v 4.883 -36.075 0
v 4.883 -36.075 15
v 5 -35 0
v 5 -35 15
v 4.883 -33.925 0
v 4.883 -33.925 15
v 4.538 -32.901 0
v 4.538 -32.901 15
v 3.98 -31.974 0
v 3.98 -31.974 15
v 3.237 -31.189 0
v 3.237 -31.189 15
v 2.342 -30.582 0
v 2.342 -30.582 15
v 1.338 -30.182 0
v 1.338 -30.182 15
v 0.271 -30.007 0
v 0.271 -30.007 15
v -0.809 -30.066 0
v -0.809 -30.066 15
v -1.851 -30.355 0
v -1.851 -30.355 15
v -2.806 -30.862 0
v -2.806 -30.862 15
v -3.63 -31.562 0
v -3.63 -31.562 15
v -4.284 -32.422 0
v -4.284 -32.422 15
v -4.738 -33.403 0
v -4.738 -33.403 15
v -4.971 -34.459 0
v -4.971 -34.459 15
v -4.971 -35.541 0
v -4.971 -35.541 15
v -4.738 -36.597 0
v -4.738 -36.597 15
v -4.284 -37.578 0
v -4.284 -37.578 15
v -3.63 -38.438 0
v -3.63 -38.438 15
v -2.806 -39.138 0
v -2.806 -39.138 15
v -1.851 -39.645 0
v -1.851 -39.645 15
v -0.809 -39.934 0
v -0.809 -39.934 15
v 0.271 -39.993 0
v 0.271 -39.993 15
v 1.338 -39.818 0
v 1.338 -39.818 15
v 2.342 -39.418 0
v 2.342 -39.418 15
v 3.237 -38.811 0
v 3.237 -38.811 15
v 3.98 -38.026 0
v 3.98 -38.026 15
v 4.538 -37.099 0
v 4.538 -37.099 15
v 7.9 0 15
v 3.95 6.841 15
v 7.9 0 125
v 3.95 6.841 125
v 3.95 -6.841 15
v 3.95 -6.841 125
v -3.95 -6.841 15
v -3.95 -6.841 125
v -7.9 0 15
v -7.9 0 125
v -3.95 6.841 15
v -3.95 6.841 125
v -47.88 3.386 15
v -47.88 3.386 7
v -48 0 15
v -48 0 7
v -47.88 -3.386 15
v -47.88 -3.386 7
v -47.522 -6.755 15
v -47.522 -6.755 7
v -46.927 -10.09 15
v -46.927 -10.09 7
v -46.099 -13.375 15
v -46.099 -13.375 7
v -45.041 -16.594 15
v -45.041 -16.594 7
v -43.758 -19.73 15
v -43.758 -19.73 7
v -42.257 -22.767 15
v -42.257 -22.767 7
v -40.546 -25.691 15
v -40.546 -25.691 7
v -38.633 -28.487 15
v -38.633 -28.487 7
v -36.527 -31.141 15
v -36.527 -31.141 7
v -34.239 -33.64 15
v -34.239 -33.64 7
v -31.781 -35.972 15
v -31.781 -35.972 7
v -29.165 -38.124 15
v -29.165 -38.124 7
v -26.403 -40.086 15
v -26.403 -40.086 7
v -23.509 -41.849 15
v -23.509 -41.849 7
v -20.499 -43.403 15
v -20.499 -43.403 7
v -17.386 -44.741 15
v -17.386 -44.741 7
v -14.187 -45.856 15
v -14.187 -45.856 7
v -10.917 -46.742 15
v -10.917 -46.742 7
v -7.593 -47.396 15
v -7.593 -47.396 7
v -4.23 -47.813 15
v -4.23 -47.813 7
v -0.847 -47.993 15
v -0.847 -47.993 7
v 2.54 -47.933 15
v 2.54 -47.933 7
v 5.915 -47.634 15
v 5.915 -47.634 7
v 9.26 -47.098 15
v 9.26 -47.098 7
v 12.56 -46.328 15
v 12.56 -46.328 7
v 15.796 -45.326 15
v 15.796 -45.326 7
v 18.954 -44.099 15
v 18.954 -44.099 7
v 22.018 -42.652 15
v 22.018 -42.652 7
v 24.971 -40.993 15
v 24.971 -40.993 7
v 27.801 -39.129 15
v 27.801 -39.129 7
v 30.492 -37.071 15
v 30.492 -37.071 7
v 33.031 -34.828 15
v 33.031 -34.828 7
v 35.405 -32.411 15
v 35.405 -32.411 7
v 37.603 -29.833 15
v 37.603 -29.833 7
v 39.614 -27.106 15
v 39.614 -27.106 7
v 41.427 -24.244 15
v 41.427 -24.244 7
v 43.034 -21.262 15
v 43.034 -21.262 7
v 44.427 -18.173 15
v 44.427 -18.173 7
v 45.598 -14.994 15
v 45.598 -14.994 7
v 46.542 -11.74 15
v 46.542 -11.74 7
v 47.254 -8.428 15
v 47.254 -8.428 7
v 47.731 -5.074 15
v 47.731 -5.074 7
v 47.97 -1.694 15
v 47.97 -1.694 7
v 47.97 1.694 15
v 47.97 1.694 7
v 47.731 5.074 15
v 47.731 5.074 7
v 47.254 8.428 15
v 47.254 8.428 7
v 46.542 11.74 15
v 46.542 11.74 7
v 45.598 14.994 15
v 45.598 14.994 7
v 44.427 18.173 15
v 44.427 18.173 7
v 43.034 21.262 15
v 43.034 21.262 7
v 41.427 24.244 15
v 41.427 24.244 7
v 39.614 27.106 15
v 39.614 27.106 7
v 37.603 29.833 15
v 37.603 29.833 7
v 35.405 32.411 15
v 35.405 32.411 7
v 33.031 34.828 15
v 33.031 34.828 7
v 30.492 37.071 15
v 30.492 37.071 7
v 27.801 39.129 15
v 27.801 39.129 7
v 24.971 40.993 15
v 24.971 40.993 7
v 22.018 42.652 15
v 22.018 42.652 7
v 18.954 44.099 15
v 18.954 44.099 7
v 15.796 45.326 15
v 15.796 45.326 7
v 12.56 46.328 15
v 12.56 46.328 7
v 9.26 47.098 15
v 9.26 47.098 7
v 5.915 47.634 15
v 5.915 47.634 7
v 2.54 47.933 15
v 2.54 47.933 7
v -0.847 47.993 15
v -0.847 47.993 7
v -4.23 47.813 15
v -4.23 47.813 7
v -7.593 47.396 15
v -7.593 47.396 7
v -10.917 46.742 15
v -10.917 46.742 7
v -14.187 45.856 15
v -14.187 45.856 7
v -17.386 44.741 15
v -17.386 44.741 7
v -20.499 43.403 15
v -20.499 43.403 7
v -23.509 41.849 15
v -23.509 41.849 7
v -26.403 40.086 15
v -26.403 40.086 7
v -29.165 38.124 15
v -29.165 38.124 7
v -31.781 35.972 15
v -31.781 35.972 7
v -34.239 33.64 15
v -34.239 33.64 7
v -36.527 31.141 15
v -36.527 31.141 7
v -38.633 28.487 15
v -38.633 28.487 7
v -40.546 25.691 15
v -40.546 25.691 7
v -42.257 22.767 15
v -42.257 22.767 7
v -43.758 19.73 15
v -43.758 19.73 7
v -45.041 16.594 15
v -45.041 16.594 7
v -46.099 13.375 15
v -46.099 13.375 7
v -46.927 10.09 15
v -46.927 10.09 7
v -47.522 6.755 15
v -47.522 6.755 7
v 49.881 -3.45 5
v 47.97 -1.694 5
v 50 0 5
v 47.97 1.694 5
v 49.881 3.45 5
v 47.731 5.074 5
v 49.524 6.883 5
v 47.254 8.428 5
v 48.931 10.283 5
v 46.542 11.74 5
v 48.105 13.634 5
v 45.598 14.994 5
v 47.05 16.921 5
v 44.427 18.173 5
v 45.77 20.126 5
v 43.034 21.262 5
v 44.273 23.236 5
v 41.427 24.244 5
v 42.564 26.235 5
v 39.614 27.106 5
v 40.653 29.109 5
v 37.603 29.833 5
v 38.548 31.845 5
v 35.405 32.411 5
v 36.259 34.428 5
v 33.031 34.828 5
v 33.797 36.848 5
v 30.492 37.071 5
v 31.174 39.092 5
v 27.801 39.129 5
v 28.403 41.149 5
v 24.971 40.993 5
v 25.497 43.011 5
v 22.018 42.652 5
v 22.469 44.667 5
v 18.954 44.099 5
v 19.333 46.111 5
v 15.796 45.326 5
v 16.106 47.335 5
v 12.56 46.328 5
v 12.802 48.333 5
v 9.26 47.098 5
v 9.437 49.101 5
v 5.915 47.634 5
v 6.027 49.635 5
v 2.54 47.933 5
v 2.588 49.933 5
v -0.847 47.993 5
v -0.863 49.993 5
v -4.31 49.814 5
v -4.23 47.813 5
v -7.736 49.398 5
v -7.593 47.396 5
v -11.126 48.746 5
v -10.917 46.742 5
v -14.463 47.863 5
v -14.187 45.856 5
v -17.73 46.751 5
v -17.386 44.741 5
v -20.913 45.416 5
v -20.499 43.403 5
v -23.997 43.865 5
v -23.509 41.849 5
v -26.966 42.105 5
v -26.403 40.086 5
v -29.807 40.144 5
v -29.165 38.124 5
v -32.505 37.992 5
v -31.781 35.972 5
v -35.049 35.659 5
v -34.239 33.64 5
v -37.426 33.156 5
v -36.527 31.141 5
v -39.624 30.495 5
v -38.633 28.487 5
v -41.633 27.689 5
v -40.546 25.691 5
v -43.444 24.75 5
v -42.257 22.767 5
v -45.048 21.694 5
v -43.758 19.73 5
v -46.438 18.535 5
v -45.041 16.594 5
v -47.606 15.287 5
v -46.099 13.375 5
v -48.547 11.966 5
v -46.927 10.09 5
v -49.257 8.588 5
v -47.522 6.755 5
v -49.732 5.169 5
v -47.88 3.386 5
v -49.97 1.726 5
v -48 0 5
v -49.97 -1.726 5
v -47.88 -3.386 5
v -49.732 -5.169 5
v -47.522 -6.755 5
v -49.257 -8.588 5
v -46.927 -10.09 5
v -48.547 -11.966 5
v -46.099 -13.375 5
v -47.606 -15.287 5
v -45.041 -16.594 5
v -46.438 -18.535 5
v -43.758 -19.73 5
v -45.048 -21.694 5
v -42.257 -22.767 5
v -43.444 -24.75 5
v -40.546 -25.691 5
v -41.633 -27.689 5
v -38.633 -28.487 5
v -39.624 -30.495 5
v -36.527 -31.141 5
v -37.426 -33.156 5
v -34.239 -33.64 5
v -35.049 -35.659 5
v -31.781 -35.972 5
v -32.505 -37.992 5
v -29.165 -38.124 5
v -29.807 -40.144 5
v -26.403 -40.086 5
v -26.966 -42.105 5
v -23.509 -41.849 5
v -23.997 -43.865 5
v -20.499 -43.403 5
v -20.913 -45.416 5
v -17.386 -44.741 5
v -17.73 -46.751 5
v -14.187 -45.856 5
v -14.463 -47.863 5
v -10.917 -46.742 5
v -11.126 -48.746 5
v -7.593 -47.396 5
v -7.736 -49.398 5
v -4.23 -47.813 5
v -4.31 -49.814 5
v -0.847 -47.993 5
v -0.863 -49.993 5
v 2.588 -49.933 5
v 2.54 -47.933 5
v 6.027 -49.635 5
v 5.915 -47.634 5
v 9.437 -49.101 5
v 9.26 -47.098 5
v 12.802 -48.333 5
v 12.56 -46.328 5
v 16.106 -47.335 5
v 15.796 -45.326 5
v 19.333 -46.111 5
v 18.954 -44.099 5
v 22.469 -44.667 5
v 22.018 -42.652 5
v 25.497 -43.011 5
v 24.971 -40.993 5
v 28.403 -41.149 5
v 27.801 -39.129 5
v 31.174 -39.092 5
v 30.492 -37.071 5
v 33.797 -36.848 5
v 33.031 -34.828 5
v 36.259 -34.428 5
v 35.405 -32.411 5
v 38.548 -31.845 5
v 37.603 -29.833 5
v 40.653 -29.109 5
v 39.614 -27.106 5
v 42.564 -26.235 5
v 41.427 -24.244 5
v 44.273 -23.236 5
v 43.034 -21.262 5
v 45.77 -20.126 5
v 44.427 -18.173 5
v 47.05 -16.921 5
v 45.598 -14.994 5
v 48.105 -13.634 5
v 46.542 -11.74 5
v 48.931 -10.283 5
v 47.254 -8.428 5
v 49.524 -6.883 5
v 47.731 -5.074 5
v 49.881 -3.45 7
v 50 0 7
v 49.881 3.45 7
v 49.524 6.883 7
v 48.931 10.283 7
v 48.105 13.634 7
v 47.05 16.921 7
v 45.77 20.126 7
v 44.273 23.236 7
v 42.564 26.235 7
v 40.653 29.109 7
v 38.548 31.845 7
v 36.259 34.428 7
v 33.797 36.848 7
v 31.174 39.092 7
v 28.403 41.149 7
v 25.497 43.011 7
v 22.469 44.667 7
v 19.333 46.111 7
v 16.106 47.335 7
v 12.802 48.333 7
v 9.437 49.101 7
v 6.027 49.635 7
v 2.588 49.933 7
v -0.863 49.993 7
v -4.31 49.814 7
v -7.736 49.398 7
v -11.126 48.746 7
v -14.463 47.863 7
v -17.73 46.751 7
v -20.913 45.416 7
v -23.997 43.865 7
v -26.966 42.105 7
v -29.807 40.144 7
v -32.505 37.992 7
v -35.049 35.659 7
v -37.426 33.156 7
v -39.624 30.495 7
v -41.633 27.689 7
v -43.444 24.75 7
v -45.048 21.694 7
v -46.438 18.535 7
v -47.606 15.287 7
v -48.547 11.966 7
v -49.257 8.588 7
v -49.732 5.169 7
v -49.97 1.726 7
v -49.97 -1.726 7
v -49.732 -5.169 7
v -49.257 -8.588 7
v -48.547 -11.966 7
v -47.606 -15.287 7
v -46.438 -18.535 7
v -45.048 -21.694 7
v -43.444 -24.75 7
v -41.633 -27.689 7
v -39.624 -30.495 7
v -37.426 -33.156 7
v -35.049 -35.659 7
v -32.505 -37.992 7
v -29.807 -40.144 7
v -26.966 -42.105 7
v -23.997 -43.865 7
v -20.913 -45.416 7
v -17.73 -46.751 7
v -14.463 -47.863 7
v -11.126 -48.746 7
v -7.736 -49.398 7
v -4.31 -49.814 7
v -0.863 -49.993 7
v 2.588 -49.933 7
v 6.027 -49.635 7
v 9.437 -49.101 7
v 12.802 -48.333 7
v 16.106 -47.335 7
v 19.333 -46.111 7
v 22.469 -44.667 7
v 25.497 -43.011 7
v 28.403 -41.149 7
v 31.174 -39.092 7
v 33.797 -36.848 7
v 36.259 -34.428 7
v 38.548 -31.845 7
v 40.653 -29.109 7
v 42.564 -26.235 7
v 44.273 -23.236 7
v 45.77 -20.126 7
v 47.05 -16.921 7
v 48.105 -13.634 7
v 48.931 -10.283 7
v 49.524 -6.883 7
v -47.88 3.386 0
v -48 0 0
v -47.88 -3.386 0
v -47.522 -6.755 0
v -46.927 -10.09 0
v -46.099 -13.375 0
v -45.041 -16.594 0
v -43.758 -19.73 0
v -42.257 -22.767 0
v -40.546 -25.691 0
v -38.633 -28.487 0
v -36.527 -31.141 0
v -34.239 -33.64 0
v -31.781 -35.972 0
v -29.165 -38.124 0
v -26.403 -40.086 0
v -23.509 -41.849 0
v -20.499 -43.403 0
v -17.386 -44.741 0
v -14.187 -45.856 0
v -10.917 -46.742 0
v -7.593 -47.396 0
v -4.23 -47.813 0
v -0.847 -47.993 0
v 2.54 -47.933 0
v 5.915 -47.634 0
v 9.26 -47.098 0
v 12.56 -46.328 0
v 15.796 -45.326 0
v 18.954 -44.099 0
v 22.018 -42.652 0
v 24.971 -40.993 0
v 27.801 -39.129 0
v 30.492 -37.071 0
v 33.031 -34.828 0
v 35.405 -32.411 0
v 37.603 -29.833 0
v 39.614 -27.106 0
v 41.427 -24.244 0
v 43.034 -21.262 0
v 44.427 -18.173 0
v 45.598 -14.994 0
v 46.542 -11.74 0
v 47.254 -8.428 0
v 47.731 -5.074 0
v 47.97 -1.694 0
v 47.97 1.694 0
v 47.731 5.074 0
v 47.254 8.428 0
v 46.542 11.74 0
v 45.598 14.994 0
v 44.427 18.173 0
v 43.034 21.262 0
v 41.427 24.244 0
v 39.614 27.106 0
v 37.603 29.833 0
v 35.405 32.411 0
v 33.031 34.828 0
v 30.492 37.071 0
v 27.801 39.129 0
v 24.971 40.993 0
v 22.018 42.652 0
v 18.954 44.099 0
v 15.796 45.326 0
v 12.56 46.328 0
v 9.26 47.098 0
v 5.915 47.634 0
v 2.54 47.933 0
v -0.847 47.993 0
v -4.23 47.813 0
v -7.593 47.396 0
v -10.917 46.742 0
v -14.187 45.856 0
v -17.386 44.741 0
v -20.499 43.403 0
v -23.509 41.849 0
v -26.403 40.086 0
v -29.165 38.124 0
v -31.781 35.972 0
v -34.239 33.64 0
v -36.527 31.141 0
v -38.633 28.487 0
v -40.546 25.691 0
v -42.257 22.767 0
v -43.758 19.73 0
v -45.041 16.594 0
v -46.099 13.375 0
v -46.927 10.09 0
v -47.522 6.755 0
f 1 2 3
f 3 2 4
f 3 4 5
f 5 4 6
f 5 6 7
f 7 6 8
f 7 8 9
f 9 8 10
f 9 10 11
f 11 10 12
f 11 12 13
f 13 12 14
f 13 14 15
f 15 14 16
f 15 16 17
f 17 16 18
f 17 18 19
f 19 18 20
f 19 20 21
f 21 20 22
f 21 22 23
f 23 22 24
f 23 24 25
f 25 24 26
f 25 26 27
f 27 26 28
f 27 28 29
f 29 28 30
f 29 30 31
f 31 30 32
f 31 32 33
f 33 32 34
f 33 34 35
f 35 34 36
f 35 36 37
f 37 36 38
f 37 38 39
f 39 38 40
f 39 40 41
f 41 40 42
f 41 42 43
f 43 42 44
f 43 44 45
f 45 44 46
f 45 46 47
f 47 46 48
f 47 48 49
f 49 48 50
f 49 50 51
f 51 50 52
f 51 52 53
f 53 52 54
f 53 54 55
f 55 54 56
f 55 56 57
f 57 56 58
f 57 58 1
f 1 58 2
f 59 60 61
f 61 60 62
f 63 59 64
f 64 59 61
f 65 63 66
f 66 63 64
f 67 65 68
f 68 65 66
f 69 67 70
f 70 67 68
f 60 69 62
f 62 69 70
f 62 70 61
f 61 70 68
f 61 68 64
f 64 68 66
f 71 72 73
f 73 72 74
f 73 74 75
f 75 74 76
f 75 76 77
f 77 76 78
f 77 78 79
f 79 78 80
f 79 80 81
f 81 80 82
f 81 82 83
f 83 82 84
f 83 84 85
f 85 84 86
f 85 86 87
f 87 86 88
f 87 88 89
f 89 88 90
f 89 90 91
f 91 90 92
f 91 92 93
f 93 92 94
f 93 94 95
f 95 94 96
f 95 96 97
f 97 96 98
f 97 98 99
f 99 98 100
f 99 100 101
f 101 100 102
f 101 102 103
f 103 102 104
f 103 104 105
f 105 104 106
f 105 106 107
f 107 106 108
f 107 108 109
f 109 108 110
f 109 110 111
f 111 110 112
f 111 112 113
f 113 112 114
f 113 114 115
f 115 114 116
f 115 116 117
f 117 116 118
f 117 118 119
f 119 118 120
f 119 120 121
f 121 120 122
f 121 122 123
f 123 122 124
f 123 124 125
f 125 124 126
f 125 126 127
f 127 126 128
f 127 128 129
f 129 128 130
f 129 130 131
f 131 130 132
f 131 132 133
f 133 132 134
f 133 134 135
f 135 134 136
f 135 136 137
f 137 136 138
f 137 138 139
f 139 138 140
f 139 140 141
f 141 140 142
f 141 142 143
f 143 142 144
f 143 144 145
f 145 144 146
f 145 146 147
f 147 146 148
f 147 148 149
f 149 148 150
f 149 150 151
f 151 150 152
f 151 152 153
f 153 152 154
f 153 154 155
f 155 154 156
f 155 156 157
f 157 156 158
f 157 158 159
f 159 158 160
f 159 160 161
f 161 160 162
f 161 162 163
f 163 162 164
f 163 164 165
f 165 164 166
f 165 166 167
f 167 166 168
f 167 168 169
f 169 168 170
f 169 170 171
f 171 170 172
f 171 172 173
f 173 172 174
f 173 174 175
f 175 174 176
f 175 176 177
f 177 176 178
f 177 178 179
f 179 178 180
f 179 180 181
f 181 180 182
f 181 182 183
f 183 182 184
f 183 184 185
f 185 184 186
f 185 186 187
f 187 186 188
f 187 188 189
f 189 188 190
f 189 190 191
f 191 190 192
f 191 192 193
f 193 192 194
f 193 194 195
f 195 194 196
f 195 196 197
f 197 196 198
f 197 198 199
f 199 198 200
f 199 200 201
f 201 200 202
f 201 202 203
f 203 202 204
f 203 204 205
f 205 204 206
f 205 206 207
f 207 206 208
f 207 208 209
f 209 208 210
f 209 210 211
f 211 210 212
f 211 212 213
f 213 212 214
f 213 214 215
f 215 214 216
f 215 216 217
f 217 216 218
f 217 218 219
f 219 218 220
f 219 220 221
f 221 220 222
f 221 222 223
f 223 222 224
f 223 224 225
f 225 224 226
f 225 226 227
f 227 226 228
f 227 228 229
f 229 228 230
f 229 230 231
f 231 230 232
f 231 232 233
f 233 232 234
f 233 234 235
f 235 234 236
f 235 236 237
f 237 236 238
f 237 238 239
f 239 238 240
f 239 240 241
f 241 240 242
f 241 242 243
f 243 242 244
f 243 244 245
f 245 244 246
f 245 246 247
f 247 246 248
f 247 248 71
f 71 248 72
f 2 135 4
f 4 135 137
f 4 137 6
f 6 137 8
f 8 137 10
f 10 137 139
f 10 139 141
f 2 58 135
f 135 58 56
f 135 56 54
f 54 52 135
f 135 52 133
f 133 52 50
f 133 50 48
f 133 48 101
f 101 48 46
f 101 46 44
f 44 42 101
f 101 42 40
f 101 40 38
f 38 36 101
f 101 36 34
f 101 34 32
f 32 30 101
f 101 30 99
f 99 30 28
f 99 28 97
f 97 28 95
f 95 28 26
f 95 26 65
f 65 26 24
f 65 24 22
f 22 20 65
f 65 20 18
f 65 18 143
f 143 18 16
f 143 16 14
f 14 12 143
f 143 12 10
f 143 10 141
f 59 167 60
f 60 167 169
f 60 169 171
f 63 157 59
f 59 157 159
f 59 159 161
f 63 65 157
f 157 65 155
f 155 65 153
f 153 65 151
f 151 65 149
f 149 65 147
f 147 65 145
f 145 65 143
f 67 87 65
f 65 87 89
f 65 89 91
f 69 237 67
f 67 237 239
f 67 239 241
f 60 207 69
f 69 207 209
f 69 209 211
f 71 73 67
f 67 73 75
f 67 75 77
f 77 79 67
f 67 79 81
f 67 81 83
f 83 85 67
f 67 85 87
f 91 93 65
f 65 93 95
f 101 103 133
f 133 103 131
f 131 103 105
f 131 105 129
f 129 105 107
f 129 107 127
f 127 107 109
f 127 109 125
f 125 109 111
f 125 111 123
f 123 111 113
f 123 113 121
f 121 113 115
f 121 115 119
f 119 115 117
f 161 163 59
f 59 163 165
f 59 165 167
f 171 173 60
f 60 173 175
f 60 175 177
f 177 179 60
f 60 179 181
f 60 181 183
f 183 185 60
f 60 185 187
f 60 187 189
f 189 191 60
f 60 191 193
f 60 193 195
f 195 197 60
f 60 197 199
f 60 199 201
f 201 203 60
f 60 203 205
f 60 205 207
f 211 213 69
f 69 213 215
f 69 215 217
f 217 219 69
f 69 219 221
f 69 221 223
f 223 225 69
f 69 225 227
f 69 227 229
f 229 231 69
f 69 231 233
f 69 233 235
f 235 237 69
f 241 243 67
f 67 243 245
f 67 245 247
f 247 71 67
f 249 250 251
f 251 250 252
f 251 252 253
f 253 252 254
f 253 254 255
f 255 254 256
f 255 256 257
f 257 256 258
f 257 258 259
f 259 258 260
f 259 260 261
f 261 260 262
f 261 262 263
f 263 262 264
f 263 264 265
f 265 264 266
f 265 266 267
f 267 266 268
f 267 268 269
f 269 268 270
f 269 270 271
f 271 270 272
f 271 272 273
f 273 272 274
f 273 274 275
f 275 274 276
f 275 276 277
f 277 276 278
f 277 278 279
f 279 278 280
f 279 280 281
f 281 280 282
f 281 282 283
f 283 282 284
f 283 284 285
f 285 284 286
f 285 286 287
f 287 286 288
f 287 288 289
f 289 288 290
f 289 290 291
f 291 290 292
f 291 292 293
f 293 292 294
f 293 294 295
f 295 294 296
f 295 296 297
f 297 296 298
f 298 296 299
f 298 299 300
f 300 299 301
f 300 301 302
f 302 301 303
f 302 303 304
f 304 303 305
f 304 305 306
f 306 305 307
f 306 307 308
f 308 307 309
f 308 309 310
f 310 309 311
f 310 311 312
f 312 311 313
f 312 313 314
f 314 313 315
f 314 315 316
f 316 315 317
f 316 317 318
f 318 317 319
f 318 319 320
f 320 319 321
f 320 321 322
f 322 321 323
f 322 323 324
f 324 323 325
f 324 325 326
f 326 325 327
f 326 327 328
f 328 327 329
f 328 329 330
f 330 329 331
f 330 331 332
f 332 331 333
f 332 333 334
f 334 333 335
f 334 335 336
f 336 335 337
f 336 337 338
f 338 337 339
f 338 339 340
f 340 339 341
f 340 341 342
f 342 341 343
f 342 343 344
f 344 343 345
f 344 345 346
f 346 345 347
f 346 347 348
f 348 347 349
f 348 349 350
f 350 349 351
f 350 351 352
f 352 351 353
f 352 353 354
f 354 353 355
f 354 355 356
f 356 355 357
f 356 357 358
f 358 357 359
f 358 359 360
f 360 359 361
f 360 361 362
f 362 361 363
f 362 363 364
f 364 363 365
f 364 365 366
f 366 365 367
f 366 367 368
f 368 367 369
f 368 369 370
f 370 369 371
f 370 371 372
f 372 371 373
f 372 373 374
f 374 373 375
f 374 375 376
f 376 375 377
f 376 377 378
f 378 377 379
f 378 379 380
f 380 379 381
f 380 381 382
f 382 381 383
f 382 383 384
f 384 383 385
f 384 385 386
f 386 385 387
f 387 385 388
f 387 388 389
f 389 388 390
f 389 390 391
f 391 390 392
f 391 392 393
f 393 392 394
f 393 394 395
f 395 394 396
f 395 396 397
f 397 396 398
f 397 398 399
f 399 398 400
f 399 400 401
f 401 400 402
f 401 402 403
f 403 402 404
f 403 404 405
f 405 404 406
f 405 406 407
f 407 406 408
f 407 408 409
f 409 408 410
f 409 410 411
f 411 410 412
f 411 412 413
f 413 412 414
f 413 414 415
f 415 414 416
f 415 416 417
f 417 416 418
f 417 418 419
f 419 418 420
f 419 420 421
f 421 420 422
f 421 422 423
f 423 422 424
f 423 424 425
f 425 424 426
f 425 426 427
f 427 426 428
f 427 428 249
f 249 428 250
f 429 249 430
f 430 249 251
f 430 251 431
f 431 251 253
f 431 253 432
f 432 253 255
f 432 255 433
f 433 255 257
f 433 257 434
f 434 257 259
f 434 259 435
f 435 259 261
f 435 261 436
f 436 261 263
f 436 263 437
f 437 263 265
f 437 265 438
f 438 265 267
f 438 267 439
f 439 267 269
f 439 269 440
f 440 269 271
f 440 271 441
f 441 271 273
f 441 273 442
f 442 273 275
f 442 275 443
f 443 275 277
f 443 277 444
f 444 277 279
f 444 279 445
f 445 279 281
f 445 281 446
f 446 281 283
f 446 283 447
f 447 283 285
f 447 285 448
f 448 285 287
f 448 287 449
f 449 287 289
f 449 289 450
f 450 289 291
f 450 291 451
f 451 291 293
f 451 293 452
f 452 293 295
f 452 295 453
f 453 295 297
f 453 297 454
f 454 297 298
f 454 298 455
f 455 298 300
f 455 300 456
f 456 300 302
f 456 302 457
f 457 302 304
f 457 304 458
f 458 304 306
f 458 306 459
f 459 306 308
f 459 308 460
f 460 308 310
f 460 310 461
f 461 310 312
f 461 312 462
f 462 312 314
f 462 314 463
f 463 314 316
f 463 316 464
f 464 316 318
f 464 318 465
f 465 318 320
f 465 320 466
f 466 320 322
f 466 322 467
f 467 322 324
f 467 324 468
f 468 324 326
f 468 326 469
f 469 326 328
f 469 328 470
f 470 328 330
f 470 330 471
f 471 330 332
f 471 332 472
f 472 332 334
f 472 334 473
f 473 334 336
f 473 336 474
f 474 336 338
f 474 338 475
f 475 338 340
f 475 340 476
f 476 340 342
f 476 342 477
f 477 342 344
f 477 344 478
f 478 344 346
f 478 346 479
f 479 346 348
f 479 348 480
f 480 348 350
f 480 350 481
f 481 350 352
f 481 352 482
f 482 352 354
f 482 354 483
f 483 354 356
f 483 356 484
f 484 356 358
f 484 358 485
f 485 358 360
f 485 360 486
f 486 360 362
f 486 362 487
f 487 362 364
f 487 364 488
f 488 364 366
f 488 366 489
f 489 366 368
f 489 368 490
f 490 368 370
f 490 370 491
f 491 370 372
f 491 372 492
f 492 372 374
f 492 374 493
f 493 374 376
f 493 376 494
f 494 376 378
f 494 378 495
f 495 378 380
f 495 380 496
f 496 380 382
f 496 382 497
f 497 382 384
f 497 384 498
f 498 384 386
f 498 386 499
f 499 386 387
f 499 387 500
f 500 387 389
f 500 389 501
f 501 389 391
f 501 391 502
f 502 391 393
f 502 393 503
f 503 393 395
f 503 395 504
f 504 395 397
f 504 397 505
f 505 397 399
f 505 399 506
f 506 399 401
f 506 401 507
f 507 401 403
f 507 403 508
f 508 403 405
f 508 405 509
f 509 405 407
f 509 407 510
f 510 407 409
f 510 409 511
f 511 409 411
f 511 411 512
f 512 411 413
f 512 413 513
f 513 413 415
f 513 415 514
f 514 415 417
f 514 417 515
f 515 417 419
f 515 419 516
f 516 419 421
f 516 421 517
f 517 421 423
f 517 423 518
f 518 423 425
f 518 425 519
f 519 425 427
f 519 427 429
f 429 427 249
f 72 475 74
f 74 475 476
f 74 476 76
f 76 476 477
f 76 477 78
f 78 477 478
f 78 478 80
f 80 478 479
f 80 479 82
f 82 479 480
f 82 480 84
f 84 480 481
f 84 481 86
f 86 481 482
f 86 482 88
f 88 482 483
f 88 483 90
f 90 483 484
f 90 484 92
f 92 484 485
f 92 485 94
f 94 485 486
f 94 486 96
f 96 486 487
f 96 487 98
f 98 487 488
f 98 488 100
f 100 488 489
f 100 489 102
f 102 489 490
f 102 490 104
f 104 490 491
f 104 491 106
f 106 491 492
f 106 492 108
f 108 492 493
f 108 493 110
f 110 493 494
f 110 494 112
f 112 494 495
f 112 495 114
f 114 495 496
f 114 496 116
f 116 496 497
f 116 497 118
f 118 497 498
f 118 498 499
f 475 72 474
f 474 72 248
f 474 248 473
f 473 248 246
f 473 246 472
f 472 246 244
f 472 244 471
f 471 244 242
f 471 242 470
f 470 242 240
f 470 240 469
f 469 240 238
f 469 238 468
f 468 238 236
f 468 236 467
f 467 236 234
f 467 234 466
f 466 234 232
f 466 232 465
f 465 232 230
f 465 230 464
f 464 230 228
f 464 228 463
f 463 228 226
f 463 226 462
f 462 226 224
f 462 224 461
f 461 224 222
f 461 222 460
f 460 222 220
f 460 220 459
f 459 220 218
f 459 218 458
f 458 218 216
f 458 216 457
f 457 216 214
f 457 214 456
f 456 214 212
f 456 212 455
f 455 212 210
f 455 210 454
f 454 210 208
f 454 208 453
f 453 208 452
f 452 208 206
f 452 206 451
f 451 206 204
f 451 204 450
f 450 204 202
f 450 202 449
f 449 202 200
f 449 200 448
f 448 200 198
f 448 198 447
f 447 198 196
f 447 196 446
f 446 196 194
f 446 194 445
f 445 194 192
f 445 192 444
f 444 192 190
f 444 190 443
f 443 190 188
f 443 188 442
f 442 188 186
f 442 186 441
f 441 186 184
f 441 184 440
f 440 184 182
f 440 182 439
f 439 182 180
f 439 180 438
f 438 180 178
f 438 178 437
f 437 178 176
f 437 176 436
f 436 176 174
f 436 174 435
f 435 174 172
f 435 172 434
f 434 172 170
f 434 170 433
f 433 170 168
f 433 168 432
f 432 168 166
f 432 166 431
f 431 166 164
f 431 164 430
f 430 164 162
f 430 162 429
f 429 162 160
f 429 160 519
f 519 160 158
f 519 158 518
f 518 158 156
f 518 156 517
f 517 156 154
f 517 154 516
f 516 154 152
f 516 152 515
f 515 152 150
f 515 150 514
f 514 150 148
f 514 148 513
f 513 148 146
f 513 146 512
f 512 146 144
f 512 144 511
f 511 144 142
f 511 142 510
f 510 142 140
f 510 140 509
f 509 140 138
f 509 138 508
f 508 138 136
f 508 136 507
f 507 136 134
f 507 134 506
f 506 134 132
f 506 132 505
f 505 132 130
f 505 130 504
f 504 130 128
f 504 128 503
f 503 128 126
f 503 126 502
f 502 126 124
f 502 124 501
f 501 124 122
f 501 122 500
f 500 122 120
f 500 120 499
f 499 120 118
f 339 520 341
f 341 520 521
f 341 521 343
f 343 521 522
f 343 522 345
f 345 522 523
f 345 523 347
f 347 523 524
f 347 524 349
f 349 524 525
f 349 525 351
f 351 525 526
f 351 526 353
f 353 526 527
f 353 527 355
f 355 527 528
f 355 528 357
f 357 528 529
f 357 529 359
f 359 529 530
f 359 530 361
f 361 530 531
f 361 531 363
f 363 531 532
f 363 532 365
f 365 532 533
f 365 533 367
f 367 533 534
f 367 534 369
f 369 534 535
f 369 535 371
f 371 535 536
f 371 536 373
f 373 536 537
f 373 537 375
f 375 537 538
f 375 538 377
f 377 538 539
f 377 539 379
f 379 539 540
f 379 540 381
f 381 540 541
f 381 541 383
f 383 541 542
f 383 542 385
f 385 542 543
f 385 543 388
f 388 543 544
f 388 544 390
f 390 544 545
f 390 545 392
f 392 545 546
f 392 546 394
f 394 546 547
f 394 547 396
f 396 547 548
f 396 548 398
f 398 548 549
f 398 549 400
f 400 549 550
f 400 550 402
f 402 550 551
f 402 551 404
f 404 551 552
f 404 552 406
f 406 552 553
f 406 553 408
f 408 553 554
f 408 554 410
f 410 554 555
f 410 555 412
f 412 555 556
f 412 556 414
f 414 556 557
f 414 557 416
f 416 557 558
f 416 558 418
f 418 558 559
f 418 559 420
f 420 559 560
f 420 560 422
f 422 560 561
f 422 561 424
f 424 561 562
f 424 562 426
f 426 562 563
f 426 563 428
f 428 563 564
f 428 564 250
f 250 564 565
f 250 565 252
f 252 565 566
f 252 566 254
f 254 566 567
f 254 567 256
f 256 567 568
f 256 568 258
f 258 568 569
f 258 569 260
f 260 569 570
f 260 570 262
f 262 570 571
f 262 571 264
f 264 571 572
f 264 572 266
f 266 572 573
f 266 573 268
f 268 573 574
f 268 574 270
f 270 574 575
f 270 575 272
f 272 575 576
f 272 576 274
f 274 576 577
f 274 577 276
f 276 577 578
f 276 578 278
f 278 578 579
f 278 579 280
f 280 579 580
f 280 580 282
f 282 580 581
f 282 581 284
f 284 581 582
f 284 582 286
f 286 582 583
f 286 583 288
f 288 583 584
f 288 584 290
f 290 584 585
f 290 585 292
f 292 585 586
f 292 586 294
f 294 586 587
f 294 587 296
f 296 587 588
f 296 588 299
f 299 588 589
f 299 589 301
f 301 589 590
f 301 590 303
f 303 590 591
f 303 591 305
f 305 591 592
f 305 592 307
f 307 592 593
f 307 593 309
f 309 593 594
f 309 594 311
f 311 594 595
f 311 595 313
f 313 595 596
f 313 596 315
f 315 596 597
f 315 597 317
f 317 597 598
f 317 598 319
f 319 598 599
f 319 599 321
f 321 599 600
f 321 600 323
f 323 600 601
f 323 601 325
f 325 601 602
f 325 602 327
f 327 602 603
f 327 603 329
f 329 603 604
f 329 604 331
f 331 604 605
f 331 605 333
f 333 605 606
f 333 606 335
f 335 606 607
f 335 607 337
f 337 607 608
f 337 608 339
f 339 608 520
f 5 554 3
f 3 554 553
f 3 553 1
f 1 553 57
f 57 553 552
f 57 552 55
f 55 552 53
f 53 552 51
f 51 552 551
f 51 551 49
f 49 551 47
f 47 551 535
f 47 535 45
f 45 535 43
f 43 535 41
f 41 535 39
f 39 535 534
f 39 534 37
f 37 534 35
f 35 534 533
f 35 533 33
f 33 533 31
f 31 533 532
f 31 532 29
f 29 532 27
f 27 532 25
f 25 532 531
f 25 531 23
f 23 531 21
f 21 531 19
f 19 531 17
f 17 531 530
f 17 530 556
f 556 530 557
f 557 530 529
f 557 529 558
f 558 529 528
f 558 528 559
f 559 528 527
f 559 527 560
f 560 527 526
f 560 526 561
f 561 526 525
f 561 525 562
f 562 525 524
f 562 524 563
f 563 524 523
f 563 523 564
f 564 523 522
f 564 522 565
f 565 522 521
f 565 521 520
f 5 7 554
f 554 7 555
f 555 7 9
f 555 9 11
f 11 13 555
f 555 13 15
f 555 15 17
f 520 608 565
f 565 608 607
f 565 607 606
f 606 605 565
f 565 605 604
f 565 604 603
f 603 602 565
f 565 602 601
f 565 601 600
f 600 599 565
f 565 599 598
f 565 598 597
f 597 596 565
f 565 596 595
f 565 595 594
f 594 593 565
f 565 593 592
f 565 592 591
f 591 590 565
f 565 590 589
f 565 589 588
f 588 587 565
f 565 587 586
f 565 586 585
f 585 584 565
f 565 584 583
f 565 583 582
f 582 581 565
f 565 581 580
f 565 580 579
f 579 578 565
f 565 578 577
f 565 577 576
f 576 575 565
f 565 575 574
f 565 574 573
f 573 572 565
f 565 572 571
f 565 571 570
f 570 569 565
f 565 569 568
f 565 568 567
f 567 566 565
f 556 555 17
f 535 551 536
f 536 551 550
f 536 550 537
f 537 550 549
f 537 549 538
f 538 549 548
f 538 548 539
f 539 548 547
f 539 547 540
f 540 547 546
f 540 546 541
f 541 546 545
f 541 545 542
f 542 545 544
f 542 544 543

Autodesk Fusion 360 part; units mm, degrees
sketch "Sketch1" plane through (0, 0, 0) normal (0, 0, 1) x (1, 0, 0)
  circle A0 centre (0, 0) radius 48
  dimension "d1" = 96
extrude "Extrude1" add sketch "Sketch1" along normal blind 5
sketch "Sketch2" plane through (0, 0, 5) normal (0, 0, 1) x (-1, 0, 0)
  circle A0 centre (0, 0) radius 48
  circle A1 centre (0, 0) radius 50
extrude "Extrude2" add sketch "Sketch2" along normal blind 2 contours A0 | A1
extrude "Extrude3" add sketch "Sketch1" along normal blind 15
sketch "Sketch3" plane through (0, 0, 15) normal (0, 0, 1) x (-1, 0, 0)
  circle A0 centre (0, 0) radius 48
  line L0 (3.9499, -6.8414) -> (7.8997, 0)
  line L1 (7.8997, 0) -> (3.9499, 6.8414)
  line L2 (3.9499, 6.8414) -> (-3.9499, 6.8414)
  line L3 (-3.9499, 6.8414) -> (-7.8997, 0)
  line L4 (-7.8997, 0) -> (-3.9499, -6.8414)
  line L5 (-3.9499, -6.8414) -> (3.9499, -6.8414)
extrude "Extrude4" add sketch "Sketch3" along normal blind 110 contours L0 L1 L2 L3 L4 L5
sketch "Sketch4" plane through (0, 0, 15) normal (0, 0, 1) x (-1, 0, 0)
  line L0 (-3.9499, -6.8414) -> (-7.8997, 0)
  line L1 (-7.8997, 0) -> (-3.9499, 6.8414)
  line L2 (-3.9499, 6.8414) -> (3.9499, 6.8414)
  line L3 (3.9499, 6.8414) -> (7.8997, 0)
  line L4 (7.8997, 0) -> (3.9499, -6.8414)
  line L5 (3.9499, -6.8414) -> (-3.9499, -6.8414)
  circle A0 centre (0, 0) radius 48
  circle A1 centre (0, 35) radius 5
extrude "Extrude5" cut sketch "Sketch4" against normal blind 15 contours A1
